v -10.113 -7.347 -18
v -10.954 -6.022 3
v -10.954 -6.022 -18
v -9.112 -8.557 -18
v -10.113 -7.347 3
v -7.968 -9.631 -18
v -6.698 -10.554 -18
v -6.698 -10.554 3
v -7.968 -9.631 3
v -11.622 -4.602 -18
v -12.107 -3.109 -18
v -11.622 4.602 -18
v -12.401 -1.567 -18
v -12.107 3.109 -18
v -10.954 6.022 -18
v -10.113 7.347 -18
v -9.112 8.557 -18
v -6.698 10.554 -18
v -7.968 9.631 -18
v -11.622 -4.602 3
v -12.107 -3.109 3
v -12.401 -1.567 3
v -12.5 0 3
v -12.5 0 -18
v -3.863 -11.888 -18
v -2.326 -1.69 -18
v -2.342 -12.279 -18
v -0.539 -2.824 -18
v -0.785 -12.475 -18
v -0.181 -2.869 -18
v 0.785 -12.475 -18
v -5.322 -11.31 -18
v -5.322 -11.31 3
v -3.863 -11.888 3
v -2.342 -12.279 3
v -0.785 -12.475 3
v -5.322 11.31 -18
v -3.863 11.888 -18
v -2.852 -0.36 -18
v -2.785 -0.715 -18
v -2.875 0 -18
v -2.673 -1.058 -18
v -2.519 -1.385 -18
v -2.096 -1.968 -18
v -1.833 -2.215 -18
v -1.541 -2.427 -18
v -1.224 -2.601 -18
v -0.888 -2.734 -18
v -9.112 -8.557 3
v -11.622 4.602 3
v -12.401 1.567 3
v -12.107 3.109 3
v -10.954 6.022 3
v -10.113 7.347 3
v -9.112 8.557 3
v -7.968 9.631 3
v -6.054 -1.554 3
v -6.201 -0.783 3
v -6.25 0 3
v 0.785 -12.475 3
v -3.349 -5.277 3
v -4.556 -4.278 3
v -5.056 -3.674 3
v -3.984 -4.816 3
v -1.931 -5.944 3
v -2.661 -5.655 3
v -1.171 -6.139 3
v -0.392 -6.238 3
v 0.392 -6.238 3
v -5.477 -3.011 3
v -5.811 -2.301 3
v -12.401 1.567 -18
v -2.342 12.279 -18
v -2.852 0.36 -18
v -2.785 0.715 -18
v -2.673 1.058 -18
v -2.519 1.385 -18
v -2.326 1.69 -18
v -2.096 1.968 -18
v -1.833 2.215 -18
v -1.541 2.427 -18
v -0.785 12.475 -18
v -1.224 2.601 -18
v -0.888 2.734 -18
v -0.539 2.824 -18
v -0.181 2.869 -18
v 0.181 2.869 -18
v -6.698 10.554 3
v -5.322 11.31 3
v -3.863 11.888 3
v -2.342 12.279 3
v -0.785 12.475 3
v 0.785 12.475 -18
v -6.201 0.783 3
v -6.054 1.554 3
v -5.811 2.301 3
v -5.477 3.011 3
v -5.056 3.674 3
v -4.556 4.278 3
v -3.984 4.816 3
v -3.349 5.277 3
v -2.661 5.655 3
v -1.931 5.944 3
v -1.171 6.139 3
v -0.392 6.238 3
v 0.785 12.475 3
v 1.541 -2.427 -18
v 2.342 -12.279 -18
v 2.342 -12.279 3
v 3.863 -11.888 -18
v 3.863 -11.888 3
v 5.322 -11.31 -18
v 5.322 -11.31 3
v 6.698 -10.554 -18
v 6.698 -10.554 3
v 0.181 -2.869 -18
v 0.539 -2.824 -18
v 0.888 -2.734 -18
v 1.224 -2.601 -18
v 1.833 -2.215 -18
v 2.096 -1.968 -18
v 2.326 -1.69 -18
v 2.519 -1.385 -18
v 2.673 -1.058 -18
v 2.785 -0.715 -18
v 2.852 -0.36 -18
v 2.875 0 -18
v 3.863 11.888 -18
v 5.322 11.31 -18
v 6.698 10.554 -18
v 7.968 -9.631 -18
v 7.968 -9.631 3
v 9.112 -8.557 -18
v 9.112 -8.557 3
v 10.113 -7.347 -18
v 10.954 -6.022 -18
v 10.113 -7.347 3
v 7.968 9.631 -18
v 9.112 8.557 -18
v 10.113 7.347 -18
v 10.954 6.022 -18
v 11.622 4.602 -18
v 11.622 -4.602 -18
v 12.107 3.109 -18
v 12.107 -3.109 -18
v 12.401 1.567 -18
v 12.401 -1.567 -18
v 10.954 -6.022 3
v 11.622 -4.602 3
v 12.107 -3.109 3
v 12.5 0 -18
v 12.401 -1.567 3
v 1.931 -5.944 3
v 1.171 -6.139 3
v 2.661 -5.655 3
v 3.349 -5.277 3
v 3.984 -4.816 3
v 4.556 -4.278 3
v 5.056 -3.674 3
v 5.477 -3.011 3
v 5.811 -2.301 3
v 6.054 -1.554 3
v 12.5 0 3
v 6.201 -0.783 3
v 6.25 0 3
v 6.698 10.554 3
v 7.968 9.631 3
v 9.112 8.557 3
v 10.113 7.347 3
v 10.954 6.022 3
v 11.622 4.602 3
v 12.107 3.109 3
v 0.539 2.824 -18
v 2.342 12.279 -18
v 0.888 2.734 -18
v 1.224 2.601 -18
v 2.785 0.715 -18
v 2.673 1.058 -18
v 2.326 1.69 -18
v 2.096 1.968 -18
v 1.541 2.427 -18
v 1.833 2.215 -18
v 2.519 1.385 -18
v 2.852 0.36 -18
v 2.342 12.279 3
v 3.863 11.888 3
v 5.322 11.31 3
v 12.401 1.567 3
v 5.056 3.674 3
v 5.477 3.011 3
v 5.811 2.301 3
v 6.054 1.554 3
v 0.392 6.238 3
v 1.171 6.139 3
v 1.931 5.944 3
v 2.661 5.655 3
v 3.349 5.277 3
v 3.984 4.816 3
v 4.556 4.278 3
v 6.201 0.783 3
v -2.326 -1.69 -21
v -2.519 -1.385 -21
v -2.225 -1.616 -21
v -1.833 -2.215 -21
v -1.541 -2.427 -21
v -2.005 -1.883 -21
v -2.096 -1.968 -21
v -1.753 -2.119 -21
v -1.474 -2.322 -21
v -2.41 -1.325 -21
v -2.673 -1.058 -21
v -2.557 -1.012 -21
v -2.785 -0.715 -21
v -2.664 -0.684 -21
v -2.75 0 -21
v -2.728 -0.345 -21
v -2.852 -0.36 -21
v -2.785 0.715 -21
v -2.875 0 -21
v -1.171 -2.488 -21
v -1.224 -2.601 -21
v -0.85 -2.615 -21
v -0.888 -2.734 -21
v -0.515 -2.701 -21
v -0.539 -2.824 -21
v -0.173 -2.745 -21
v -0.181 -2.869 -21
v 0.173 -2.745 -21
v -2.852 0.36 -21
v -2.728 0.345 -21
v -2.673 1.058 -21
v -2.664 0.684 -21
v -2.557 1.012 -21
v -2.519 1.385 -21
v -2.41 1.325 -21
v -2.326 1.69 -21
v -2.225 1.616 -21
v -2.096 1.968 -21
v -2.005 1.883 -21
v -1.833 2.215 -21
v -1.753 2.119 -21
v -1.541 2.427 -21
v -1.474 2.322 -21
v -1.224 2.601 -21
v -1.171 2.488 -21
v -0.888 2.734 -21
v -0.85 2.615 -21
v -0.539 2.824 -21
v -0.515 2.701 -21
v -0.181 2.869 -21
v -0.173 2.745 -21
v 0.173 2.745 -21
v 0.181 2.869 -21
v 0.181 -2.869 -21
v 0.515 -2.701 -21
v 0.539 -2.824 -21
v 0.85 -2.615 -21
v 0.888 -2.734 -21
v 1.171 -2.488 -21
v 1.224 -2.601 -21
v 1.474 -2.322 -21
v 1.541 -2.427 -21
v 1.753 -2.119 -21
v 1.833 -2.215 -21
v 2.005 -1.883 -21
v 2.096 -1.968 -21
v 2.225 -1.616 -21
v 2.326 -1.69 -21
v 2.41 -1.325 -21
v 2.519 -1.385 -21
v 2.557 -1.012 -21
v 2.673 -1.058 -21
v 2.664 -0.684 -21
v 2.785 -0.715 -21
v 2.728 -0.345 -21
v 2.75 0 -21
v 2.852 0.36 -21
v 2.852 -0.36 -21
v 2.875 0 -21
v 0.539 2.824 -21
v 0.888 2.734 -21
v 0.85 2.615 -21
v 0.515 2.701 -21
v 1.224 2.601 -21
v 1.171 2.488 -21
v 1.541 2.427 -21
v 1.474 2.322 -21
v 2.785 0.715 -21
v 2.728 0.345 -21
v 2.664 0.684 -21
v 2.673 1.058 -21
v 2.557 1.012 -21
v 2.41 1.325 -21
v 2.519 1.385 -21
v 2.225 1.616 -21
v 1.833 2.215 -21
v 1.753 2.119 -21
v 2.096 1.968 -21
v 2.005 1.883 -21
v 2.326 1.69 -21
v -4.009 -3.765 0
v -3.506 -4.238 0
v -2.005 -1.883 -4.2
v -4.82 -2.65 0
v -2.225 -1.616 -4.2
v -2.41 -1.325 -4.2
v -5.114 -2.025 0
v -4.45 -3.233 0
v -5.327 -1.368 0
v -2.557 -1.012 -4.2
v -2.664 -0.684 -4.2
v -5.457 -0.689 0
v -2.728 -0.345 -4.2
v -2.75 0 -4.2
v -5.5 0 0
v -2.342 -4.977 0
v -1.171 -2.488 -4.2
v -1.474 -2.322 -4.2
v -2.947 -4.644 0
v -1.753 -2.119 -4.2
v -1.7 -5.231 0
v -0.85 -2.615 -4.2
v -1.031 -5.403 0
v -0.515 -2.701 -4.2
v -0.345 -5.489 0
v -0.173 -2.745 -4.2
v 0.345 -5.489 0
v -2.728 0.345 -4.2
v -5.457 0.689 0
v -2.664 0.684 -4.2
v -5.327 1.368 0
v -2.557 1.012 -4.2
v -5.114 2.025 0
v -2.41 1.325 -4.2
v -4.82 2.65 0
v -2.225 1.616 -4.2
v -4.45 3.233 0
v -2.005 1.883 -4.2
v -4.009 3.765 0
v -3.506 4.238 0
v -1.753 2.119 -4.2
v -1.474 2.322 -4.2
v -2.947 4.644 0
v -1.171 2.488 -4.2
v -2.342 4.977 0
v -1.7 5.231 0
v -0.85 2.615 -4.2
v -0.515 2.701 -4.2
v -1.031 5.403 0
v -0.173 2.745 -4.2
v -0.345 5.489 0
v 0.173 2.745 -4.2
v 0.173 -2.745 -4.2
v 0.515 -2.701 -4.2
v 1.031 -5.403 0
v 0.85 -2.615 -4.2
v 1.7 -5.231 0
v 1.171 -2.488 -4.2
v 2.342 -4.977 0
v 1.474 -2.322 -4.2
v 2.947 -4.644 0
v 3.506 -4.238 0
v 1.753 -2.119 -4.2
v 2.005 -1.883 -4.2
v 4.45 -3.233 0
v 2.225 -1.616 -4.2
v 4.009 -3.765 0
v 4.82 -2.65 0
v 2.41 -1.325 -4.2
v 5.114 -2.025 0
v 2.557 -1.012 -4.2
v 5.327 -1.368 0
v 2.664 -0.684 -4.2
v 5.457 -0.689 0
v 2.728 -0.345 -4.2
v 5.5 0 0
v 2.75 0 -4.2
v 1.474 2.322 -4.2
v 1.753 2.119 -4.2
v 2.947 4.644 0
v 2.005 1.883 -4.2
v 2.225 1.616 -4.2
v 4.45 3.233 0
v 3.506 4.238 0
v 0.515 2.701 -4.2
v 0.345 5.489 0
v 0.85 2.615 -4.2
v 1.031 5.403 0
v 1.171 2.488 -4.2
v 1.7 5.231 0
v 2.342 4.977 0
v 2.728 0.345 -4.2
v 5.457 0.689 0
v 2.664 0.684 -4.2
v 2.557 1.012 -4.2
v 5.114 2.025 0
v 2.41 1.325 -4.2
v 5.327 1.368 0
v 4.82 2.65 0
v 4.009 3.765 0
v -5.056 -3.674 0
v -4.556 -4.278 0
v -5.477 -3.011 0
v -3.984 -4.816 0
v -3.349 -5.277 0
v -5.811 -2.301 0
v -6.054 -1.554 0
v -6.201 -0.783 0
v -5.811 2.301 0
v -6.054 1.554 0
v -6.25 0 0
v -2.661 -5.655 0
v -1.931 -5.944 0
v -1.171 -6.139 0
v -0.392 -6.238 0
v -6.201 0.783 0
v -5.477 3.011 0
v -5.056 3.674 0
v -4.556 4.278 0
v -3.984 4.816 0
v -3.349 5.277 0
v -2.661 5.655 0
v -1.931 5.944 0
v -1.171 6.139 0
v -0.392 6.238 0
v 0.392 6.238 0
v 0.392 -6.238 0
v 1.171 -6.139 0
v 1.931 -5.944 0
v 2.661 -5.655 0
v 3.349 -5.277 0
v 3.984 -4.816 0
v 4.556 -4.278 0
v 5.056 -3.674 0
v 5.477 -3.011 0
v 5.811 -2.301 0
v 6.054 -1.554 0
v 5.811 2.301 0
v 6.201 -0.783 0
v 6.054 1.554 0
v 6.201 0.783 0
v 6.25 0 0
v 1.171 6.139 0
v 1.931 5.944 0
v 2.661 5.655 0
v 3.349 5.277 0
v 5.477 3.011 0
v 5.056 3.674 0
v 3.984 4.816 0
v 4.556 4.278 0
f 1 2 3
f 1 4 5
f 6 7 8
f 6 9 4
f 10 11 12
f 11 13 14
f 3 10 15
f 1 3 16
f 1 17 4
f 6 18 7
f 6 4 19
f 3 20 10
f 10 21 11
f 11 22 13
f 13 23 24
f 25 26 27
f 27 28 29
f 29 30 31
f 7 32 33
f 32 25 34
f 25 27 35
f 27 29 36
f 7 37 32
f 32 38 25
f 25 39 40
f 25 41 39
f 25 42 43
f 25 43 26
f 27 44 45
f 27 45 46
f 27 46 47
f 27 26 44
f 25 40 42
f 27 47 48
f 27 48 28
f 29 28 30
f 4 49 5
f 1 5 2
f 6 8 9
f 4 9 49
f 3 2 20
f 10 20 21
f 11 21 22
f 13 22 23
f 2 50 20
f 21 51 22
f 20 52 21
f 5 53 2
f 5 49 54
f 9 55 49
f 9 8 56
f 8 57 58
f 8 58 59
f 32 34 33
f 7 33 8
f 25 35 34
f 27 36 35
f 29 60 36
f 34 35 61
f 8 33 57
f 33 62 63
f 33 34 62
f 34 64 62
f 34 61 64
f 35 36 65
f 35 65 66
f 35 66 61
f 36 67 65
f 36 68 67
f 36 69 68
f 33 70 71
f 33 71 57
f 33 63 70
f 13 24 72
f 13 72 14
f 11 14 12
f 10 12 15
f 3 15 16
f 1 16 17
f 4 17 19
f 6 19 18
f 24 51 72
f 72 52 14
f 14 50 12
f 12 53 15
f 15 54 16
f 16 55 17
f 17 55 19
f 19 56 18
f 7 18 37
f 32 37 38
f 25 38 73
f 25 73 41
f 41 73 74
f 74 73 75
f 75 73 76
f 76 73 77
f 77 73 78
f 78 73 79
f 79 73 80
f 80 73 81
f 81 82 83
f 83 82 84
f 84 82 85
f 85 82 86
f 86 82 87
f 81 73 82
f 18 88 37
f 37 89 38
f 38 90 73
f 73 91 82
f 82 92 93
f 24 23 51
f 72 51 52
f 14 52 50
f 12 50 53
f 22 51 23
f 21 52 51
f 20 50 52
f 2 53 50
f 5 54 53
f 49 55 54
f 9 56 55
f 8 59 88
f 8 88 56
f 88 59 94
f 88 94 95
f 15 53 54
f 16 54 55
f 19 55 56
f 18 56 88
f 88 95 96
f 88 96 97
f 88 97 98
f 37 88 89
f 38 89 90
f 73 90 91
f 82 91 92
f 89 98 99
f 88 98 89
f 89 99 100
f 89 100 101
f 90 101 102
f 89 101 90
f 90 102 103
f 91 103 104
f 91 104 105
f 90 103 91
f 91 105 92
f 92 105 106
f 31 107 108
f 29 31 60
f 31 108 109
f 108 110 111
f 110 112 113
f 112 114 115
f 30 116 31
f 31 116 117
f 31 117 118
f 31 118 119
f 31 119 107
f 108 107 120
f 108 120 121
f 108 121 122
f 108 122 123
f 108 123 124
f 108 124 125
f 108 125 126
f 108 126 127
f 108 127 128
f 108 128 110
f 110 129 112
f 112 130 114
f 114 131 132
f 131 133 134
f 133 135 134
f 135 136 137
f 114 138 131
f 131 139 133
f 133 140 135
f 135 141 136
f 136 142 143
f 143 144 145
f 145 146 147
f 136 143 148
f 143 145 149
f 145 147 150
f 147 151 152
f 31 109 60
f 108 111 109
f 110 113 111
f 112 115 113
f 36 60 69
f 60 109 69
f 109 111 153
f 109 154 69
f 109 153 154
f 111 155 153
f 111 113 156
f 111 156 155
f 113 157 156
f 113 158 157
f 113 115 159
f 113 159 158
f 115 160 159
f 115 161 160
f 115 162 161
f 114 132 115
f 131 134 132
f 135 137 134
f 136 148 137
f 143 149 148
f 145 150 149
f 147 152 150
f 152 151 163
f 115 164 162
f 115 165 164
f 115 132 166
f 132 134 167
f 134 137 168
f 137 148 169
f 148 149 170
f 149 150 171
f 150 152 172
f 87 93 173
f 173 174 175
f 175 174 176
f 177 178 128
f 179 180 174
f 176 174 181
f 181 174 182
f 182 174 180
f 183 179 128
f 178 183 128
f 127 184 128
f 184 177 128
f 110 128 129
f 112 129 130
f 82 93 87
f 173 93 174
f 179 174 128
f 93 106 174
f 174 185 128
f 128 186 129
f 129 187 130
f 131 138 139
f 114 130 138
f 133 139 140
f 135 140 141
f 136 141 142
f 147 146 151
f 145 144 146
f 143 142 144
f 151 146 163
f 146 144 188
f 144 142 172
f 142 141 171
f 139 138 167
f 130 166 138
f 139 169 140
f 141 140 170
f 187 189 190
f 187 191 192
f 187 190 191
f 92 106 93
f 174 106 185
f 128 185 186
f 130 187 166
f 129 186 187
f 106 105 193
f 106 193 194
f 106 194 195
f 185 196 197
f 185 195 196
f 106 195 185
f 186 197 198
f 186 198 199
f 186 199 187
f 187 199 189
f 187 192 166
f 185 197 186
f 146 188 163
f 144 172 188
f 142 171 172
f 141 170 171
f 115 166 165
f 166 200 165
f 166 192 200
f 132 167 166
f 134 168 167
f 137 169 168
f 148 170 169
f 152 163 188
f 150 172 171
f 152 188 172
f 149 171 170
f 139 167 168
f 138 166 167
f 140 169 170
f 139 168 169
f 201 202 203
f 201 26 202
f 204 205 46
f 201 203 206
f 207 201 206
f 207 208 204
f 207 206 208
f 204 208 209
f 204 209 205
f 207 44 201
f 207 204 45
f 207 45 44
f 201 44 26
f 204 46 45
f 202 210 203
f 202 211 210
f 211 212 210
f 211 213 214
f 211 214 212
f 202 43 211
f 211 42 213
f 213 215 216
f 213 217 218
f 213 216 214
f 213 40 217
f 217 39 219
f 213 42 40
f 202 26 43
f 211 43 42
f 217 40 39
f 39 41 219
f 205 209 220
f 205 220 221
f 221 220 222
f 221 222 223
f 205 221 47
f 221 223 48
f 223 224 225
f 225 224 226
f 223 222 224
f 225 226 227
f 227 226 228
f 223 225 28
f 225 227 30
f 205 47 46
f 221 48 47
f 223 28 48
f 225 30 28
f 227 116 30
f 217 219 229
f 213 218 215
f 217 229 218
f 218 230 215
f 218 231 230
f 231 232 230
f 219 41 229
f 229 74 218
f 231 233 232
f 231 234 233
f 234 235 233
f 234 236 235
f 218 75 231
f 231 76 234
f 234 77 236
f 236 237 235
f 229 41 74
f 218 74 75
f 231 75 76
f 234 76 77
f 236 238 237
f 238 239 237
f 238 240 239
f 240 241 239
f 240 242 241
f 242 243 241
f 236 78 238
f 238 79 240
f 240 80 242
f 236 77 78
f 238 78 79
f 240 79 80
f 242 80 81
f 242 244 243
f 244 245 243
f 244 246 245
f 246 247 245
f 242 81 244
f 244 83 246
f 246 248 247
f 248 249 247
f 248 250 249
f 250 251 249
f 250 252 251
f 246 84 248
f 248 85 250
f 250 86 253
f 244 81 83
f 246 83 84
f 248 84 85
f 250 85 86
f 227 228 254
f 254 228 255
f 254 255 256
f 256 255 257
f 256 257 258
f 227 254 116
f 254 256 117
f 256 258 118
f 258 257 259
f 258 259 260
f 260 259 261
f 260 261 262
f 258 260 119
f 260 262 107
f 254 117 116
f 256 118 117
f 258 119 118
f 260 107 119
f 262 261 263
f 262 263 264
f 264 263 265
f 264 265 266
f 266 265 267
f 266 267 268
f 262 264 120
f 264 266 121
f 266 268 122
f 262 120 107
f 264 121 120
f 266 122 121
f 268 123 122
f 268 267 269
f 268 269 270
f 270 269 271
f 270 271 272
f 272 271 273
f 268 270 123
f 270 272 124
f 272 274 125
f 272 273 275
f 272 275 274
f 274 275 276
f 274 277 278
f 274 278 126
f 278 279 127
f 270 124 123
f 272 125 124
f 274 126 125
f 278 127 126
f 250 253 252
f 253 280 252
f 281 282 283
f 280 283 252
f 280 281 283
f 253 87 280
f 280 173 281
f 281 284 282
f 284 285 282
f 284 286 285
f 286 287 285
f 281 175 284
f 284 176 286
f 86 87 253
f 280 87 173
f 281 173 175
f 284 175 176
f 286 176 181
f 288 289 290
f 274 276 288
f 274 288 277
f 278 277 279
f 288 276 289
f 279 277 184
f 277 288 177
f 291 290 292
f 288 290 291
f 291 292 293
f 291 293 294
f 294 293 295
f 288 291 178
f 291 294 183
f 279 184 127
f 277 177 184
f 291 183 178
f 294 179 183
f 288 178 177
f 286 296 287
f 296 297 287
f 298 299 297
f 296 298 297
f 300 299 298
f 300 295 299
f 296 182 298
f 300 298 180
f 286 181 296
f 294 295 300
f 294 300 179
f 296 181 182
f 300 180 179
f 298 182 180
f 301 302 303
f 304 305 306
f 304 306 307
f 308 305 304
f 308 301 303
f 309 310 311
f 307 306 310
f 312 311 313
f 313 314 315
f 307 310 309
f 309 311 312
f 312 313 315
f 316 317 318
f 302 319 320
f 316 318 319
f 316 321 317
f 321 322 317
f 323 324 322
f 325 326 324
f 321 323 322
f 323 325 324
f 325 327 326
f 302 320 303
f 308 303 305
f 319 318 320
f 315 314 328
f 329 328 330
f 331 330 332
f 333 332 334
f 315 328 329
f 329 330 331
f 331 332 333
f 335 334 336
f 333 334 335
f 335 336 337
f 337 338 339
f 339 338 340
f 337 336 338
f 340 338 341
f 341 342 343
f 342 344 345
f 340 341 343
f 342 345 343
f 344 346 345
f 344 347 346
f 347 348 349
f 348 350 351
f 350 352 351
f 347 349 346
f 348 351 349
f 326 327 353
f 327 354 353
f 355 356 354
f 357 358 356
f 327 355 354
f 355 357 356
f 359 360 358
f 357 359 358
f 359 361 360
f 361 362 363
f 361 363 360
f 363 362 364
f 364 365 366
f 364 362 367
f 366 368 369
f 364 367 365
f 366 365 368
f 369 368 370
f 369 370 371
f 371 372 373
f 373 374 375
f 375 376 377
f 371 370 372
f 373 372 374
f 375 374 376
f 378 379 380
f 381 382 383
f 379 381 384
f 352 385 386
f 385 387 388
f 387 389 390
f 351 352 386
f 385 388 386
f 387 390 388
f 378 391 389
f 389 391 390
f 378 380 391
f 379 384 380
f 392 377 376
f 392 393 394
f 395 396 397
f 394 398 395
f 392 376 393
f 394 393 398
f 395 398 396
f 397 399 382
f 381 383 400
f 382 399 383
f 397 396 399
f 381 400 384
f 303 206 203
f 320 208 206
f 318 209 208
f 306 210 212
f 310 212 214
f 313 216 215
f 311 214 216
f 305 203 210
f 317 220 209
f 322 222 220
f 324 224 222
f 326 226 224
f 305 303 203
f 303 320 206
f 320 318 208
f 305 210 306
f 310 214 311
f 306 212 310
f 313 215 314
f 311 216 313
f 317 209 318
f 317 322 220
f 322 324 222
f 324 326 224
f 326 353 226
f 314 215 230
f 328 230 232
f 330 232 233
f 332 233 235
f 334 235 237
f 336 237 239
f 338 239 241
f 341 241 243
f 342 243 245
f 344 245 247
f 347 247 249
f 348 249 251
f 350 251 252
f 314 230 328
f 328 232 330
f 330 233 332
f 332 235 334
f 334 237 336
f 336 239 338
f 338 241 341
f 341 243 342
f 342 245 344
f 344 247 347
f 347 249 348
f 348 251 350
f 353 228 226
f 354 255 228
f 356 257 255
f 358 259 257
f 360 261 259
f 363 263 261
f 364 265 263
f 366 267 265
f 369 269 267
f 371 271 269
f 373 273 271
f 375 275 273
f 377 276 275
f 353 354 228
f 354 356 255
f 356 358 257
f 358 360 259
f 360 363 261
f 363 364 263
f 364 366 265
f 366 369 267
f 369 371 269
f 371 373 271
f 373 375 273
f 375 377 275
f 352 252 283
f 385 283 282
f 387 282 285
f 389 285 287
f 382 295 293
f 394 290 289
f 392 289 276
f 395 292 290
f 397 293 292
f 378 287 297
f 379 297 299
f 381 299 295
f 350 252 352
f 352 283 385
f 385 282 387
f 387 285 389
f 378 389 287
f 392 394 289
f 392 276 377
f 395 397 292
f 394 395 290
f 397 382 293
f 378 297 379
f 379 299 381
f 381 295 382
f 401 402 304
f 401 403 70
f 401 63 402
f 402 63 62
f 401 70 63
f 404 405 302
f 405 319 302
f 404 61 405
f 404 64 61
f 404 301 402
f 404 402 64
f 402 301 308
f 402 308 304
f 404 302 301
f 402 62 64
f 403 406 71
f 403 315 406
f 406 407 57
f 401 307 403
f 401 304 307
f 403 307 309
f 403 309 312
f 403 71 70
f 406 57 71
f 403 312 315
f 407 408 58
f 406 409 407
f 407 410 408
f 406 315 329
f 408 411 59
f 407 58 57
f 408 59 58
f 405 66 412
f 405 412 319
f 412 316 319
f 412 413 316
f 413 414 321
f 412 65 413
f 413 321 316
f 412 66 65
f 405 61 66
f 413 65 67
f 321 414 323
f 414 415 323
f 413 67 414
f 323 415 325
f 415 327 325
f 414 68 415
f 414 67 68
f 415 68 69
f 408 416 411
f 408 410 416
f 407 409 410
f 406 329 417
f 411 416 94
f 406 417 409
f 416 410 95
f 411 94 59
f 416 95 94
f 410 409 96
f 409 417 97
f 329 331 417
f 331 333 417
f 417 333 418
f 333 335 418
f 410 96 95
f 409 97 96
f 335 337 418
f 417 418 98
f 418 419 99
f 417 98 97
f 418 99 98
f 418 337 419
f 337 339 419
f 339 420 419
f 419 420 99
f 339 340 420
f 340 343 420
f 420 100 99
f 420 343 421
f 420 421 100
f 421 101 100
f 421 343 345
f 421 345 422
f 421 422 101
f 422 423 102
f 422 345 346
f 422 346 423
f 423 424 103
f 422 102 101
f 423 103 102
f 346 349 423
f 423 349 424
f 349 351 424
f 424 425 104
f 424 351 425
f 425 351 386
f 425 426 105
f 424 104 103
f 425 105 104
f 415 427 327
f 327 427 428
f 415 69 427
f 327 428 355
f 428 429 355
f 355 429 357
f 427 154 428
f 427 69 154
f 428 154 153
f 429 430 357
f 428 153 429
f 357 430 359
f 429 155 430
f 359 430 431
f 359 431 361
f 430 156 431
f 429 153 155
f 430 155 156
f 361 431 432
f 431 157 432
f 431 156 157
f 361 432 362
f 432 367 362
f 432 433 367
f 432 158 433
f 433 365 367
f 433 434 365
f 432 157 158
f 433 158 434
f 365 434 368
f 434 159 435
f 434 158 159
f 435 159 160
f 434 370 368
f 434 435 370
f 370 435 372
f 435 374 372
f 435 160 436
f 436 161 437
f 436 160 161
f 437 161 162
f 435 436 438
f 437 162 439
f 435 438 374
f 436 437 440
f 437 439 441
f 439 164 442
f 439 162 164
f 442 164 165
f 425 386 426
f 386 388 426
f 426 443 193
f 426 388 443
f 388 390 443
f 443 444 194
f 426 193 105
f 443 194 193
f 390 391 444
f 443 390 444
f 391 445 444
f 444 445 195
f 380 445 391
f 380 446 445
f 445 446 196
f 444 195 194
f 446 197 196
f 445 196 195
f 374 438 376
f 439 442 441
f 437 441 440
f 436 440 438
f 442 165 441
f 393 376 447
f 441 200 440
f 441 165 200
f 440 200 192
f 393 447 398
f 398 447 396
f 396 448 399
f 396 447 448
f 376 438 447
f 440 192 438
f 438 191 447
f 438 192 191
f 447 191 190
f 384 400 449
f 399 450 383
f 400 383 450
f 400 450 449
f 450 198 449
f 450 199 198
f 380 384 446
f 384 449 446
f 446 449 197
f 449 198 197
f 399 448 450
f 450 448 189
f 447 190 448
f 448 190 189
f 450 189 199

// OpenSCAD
$fn = 50;

difference() {
	union() {
		translate(v = [0, 0, -18.0]) {
			cylinder(h = 21, r = 12.5);
		}
		#translate(v = [0, 0, -21.0]) {
			cylinder(h = 21, r = 2.875);
		}
	}
	union() {
		translate(v = [0, 0, 0]) {
			rotate(a = [0, 0, 0]) {
				difference() {
					union() {
						translate(v = [0, 0, -21.0]) {
							cylinder(h = 21, r = 2.25);
						}
						translate(v = [0, 0, -4.2]) {
							cylinder(h = 4.2, r1 = 2.75, r2 = 5.5);
						}
						translate(v = [0, 0, -21.0]) {
							cylinder(h = 21, r = 2.75);
						}
						translate(v = [0, 0, -21.0]) {
							cylinder(h = 21, r = 2.25);
						}
					}
					union();
				}
			}
		}
		#cylinder(h = 3, r = 6.25);
	}
}
